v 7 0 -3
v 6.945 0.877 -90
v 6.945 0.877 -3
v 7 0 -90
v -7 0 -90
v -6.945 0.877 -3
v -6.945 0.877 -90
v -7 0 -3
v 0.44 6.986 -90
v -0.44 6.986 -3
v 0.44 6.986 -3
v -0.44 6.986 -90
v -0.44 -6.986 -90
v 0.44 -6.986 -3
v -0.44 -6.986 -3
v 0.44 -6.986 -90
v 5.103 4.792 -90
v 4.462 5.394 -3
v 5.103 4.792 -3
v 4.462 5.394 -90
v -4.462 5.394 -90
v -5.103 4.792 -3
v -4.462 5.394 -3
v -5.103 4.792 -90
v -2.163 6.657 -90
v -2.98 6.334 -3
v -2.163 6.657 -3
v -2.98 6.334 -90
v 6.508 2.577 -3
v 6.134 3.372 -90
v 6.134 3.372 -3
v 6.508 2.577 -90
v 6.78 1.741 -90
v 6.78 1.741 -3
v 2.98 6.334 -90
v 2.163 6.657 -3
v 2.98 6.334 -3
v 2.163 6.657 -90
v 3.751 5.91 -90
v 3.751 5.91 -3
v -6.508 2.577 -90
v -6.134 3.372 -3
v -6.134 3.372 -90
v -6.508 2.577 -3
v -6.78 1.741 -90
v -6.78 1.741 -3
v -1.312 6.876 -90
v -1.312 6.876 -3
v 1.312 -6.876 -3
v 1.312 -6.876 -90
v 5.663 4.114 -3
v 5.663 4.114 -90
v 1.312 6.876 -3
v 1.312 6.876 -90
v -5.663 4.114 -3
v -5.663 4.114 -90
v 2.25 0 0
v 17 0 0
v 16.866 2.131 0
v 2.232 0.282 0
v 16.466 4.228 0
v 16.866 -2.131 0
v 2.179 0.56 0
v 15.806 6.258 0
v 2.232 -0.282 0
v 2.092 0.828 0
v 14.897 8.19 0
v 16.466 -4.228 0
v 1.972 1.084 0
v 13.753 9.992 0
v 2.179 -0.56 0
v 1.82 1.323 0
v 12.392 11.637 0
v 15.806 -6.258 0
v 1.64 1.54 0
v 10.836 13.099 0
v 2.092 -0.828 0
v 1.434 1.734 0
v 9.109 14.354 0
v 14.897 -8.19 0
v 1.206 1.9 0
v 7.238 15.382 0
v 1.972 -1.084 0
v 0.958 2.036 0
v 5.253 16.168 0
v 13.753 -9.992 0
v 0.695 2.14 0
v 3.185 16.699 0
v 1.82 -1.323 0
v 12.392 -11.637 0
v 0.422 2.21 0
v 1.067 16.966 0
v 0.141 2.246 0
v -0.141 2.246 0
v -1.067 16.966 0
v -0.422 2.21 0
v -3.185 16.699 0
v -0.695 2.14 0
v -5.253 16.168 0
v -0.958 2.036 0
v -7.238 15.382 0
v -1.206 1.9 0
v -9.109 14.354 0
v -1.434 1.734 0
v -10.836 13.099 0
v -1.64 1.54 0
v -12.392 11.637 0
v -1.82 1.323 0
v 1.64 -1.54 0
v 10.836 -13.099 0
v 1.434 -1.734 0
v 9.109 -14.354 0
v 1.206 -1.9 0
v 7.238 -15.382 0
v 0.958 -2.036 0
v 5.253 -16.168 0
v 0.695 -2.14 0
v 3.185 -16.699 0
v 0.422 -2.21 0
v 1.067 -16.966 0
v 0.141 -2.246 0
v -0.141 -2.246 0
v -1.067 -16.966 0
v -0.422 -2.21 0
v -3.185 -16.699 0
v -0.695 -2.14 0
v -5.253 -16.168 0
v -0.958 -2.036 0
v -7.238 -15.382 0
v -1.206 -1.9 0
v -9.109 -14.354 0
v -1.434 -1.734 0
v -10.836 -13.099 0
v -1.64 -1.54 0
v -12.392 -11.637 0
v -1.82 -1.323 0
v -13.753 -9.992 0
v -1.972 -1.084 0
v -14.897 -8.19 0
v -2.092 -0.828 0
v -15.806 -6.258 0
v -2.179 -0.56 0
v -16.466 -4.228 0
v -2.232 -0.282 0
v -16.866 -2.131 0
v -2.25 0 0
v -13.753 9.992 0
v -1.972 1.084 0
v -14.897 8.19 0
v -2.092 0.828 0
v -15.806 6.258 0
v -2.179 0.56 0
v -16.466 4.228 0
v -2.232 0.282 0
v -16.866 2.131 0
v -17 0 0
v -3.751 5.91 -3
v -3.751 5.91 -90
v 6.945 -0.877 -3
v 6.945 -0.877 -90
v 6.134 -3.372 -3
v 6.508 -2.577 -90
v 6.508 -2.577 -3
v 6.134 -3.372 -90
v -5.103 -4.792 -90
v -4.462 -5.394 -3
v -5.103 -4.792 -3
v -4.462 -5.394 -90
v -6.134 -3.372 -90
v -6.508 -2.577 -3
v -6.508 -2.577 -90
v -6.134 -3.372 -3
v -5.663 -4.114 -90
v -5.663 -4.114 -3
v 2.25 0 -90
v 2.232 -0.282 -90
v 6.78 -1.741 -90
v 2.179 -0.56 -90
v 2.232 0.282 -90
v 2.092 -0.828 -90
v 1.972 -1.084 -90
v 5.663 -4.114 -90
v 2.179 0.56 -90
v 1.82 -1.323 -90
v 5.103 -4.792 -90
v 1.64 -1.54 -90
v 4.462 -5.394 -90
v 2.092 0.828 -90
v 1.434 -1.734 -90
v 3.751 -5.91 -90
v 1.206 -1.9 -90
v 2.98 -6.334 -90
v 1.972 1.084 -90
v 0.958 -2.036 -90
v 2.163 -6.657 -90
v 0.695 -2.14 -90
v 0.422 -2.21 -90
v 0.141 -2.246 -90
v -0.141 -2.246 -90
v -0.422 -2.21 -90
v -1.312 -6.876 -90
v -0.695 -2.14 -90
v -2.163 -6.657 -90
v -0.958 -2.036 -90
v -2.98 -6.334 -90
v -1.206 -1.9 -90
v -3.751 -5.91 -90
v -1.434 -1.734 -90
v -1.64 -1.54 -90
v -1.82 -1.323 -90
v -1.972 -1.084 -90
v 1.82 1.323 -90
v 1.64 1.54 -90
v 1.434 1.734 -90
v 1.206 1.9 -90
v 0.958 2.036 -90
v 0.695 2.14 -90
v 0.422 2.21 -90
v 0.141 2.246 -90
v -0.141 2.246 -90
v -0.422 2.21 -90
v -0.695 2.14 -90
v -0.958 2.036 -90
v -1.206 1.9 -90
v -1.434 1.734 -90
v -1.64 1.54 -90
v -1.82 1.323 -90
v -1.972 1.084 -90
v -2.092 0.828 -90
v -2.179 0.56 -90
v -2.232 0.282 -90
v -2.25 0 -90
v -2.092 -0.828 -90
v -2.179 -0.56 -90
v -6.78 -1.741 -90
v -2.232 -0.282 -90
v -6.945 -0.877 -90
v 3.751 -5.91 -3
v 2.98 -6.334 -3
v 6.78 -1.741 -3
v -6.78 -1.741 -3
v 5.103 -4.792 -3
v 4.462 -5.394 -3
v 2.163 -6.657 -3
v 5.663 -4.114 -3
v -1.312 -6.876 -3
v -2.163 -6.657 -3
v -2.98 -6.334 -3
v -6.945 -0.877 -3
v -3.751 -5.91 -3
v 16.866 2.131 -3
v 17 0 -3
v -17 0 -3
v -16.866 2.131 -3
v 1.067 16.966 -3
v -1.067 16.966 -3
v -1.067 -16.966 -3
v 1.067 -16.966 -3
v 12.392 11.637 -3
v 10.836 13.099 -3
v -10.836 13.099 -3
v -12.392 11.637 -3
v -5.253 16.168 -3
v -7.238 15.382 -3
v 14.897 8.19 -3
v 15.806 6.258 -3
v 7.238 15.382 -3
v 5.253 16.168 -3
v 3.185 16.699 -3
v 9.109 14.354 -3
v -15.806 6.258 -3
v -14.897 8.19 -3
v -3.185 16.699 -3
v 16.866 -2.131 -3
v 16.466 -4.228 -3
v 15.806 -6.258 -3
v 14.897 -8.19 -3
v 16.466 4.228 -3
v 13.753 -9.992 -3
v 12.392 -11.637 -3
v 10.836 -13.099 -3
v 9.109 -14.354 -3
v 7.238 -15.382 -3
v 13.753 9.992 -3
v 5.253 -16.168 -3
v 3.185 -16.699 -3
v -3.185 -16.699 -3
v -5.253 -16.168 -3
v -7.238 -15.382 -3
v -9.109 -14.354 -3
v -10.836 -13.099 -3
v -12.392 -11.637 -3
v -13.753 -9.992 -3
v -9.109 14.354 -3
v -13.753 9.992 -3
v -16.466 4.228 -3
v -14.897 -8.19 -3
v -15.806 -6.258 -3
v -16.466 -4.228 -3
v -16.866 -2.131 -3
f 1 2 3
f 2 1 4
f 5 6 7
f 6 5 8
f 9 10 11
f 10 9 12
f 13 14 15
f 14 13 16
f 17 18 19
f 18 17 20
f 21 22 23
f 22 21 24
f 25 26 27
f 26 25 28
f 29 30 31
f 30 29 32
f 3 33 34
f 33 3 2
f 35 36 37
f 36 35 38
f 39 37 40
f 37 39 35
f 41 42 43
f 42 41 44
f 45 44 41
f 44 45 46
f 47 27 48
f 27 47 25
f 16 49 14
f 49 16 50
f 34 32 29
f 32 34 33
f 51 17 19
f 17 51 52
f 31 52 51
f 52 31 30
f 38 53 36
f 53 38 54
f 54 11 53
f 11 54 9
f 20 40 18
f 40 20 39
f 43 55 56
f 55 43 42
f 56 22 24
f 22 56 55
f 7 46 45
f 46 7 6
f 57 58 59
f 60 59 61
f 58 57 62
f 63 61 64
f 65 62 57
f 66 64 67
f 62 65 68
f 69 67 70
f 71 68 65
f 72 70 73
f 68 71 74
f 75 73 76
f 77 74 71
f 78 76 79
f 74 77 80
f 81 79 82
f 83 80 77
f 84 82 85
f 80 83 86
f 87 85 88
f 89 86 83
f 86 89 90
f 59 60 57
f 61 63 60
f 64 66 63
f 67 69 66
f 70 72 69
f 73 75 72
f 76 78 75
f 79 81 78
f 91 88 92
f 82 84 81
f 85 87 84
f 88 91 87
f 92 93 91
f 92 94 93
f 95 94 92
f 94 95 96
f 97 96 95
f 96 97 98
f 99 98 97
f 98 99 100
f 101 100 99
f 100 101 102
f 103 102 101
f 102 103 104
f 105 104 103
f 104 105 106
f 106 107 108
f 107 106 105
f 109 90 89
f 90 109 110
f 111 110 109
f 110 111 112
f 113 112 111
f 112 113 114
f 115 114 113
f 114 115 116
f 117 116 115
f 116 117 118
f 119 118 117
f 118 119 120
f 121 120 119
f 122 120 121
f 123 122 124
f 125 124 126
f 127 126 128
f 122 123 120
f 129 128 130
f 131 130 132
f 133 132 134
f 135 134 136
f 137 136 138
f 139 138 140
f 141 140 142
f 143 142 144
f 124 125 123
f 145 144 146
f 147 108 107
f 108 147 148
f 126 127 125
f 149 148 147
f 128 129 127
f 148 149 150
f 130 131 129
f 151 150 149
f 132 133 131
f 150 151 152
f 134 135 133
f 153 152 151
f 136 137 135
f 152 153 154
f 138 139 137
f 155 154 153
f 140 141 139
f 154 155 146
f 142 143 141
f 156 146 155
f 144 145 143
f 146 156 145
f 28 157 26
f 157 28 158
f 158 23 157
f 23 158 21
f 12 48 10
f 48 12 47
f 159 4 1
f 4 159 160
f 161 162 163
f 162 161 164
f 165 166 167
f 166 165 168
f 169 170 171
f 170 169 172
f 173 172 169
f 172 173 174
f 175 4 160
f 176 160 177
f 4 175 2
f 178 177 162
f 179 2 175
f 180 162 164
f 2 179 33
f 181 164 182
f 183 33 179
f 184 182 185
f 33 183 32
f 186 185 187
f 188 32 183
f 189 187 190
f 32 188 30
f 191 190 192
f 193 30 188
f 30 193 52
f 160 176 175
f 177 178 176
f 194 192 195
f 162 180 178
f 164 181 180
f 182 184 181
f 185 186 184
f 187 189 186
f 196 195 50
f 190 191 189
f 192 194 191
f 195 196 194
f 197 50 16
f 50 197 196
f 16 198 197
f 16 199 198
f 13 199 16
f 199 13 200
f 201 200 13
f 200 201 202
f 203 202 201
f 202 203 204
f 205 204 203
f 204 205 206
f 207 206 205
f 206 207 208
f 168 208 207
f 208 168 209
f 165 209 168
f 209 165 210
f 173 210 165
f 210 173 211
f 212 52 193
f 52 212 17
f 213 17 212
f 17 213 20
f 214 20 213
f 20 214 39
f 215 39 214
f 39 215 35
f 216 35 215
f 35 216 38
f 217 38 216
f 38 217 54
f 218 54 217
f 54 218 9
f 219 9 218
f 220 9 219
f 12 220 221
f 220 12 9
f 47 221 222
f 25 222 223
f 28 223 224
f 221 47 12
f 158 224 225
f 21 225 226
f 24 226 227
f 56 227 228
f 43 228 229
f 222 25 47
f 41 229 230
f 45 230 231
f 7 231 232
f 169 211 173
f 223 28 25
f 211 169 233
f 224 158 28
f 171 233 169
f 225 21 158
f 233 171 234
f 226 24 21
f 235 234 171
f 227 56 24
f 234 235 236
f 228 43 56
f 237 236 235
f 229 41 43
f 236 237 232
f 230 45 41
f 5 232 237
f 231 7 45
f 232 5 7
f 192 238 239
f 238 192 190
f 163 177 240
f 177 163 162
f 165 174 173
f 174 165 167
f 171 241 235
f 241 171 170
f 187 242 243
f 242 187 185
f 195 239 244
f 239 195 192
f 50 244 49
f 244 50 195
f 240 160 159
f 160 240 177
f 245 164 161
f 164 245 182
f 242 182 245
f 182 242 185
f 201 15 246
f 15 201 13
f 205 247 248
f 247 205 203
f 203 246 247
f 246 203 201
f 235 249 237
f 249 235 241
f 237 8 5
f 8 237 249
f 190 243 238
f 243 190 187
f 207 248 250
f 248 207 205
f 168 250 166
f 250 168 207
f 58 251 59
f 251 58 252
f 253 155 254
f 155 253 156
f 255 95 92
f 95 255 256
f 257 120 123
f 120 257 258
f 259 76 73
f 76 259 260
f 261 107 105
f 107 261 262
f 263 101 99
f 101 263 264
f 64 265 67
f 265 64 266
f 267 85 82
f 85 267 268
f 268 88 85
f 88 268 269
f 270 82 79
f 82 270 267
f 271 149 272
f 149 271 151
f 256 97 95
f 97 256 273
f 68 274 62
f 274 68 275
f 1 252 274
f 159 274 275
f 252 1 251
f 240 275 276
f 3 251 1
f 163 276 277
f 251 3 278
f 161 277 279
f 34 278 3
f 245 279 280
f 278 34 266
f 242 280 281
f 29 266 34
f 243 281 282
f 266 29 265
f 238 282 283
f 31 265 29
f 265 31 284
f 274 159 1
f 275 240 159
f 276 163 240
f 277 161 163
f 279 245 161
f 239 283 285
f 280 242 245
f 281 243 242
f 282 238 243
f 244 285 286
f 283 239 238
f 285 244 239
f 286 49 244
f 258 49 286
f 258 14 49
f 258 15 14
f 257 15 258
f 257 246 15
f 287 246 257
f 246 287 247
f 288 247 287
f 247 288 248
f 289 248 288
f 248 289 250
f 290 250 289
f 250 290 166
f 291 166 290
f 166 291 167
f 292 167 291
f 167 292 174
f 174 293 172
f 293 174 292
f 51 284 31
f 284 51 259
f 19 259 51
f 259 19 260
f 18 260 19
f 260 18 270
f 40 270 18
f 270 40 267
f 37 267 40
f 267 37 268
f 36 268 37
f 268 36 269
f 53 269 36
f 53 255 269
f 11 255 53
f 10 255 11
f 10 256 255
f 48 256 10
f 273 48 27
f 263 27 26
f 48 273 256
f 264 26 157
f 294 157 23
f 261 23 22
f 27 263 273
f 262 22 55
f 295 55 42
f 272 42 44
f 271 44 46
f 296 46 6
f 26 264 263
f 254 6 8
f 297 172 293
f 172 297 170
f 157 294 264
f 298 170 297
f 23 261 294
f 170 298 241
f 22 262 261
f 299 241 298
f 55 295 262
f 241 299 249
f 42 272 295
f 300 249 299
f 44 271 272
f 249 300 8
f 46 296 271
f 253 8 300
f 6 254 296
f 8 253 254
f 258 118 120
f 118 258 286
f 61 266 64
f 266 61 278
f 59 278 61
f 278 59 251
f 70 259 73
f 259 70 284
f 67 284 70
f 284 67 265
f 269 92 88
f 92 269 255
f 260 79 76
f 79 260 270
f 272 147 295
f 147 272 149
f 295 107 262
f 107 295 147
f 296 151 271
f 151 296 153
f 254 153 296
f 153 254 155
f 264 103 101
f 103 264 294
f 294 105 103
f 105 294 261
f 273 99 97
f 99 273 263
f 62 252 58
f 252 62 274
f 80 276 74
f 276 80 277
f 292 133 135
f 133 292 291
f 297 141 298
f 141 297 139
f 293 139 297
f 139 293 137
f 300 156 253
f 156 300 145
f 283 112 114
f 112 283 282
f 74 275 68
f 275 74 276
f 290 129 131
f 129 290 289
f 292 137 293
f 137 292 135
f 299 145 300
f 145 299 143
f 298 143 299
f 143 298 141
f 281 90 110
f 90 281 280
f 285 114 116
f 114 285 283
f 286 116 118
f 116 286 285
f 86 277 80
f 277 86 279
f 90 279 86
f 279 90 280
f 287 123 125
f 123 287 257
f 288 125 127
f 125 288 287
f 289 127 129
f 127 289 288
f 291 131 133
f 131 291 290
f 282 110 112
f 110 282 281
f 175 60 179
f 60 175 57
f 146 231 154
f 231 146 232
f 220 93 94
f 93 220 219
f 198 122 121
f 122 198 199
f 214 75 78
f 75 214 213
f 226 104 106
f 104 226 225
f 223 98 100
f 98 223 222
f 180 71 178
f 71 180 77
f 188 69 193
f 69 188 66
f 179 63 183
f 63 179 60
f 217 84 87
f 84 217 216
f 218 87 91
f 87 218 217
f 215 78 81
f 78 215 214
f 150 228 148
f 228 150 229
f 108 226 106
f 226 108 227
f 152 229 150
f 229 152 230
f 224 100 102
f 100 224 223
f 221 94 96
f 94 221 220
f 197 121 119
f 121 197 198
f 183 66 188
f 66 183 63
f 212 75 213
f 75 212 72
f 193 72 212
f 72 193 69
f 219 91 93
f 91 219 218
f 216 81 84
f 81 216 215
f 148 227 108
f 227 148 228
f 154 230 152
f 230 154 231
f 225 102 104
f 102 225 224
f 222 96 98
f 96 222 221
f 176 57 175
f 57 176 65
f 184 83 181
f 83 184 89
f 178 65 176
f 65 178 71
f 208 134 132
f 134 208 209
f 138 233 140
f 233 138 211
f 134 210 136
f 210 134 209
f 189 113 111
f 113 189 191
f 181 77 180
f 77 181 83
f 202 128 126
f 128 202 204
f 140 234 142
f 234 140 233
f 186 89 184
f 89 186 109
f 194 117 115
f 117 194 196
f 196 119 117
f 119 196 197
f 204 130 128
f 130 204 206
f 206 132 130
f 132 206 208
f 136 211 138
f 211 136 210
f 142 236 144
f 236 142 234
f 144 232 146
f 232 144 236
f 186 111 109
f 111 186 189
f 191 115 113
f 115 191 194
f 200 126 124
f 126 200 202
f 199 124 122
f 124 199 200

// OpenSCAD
$fn = 50;


difference() {
	union() {
		translate(v = [0, 0, -90.0000000000]) {
			cylinder(h = 90, r = 7.0000000000);
		}
		translate(v = [0, 0, -3.0000000000]) {
			cylinder(h = 3, r = 17.0000000000);
		}
	}
	union() {
		#translate(v = [0, 0, -90]) {
			cylinder(h = 90, r = 2.2500000000);
		}
	}
}
